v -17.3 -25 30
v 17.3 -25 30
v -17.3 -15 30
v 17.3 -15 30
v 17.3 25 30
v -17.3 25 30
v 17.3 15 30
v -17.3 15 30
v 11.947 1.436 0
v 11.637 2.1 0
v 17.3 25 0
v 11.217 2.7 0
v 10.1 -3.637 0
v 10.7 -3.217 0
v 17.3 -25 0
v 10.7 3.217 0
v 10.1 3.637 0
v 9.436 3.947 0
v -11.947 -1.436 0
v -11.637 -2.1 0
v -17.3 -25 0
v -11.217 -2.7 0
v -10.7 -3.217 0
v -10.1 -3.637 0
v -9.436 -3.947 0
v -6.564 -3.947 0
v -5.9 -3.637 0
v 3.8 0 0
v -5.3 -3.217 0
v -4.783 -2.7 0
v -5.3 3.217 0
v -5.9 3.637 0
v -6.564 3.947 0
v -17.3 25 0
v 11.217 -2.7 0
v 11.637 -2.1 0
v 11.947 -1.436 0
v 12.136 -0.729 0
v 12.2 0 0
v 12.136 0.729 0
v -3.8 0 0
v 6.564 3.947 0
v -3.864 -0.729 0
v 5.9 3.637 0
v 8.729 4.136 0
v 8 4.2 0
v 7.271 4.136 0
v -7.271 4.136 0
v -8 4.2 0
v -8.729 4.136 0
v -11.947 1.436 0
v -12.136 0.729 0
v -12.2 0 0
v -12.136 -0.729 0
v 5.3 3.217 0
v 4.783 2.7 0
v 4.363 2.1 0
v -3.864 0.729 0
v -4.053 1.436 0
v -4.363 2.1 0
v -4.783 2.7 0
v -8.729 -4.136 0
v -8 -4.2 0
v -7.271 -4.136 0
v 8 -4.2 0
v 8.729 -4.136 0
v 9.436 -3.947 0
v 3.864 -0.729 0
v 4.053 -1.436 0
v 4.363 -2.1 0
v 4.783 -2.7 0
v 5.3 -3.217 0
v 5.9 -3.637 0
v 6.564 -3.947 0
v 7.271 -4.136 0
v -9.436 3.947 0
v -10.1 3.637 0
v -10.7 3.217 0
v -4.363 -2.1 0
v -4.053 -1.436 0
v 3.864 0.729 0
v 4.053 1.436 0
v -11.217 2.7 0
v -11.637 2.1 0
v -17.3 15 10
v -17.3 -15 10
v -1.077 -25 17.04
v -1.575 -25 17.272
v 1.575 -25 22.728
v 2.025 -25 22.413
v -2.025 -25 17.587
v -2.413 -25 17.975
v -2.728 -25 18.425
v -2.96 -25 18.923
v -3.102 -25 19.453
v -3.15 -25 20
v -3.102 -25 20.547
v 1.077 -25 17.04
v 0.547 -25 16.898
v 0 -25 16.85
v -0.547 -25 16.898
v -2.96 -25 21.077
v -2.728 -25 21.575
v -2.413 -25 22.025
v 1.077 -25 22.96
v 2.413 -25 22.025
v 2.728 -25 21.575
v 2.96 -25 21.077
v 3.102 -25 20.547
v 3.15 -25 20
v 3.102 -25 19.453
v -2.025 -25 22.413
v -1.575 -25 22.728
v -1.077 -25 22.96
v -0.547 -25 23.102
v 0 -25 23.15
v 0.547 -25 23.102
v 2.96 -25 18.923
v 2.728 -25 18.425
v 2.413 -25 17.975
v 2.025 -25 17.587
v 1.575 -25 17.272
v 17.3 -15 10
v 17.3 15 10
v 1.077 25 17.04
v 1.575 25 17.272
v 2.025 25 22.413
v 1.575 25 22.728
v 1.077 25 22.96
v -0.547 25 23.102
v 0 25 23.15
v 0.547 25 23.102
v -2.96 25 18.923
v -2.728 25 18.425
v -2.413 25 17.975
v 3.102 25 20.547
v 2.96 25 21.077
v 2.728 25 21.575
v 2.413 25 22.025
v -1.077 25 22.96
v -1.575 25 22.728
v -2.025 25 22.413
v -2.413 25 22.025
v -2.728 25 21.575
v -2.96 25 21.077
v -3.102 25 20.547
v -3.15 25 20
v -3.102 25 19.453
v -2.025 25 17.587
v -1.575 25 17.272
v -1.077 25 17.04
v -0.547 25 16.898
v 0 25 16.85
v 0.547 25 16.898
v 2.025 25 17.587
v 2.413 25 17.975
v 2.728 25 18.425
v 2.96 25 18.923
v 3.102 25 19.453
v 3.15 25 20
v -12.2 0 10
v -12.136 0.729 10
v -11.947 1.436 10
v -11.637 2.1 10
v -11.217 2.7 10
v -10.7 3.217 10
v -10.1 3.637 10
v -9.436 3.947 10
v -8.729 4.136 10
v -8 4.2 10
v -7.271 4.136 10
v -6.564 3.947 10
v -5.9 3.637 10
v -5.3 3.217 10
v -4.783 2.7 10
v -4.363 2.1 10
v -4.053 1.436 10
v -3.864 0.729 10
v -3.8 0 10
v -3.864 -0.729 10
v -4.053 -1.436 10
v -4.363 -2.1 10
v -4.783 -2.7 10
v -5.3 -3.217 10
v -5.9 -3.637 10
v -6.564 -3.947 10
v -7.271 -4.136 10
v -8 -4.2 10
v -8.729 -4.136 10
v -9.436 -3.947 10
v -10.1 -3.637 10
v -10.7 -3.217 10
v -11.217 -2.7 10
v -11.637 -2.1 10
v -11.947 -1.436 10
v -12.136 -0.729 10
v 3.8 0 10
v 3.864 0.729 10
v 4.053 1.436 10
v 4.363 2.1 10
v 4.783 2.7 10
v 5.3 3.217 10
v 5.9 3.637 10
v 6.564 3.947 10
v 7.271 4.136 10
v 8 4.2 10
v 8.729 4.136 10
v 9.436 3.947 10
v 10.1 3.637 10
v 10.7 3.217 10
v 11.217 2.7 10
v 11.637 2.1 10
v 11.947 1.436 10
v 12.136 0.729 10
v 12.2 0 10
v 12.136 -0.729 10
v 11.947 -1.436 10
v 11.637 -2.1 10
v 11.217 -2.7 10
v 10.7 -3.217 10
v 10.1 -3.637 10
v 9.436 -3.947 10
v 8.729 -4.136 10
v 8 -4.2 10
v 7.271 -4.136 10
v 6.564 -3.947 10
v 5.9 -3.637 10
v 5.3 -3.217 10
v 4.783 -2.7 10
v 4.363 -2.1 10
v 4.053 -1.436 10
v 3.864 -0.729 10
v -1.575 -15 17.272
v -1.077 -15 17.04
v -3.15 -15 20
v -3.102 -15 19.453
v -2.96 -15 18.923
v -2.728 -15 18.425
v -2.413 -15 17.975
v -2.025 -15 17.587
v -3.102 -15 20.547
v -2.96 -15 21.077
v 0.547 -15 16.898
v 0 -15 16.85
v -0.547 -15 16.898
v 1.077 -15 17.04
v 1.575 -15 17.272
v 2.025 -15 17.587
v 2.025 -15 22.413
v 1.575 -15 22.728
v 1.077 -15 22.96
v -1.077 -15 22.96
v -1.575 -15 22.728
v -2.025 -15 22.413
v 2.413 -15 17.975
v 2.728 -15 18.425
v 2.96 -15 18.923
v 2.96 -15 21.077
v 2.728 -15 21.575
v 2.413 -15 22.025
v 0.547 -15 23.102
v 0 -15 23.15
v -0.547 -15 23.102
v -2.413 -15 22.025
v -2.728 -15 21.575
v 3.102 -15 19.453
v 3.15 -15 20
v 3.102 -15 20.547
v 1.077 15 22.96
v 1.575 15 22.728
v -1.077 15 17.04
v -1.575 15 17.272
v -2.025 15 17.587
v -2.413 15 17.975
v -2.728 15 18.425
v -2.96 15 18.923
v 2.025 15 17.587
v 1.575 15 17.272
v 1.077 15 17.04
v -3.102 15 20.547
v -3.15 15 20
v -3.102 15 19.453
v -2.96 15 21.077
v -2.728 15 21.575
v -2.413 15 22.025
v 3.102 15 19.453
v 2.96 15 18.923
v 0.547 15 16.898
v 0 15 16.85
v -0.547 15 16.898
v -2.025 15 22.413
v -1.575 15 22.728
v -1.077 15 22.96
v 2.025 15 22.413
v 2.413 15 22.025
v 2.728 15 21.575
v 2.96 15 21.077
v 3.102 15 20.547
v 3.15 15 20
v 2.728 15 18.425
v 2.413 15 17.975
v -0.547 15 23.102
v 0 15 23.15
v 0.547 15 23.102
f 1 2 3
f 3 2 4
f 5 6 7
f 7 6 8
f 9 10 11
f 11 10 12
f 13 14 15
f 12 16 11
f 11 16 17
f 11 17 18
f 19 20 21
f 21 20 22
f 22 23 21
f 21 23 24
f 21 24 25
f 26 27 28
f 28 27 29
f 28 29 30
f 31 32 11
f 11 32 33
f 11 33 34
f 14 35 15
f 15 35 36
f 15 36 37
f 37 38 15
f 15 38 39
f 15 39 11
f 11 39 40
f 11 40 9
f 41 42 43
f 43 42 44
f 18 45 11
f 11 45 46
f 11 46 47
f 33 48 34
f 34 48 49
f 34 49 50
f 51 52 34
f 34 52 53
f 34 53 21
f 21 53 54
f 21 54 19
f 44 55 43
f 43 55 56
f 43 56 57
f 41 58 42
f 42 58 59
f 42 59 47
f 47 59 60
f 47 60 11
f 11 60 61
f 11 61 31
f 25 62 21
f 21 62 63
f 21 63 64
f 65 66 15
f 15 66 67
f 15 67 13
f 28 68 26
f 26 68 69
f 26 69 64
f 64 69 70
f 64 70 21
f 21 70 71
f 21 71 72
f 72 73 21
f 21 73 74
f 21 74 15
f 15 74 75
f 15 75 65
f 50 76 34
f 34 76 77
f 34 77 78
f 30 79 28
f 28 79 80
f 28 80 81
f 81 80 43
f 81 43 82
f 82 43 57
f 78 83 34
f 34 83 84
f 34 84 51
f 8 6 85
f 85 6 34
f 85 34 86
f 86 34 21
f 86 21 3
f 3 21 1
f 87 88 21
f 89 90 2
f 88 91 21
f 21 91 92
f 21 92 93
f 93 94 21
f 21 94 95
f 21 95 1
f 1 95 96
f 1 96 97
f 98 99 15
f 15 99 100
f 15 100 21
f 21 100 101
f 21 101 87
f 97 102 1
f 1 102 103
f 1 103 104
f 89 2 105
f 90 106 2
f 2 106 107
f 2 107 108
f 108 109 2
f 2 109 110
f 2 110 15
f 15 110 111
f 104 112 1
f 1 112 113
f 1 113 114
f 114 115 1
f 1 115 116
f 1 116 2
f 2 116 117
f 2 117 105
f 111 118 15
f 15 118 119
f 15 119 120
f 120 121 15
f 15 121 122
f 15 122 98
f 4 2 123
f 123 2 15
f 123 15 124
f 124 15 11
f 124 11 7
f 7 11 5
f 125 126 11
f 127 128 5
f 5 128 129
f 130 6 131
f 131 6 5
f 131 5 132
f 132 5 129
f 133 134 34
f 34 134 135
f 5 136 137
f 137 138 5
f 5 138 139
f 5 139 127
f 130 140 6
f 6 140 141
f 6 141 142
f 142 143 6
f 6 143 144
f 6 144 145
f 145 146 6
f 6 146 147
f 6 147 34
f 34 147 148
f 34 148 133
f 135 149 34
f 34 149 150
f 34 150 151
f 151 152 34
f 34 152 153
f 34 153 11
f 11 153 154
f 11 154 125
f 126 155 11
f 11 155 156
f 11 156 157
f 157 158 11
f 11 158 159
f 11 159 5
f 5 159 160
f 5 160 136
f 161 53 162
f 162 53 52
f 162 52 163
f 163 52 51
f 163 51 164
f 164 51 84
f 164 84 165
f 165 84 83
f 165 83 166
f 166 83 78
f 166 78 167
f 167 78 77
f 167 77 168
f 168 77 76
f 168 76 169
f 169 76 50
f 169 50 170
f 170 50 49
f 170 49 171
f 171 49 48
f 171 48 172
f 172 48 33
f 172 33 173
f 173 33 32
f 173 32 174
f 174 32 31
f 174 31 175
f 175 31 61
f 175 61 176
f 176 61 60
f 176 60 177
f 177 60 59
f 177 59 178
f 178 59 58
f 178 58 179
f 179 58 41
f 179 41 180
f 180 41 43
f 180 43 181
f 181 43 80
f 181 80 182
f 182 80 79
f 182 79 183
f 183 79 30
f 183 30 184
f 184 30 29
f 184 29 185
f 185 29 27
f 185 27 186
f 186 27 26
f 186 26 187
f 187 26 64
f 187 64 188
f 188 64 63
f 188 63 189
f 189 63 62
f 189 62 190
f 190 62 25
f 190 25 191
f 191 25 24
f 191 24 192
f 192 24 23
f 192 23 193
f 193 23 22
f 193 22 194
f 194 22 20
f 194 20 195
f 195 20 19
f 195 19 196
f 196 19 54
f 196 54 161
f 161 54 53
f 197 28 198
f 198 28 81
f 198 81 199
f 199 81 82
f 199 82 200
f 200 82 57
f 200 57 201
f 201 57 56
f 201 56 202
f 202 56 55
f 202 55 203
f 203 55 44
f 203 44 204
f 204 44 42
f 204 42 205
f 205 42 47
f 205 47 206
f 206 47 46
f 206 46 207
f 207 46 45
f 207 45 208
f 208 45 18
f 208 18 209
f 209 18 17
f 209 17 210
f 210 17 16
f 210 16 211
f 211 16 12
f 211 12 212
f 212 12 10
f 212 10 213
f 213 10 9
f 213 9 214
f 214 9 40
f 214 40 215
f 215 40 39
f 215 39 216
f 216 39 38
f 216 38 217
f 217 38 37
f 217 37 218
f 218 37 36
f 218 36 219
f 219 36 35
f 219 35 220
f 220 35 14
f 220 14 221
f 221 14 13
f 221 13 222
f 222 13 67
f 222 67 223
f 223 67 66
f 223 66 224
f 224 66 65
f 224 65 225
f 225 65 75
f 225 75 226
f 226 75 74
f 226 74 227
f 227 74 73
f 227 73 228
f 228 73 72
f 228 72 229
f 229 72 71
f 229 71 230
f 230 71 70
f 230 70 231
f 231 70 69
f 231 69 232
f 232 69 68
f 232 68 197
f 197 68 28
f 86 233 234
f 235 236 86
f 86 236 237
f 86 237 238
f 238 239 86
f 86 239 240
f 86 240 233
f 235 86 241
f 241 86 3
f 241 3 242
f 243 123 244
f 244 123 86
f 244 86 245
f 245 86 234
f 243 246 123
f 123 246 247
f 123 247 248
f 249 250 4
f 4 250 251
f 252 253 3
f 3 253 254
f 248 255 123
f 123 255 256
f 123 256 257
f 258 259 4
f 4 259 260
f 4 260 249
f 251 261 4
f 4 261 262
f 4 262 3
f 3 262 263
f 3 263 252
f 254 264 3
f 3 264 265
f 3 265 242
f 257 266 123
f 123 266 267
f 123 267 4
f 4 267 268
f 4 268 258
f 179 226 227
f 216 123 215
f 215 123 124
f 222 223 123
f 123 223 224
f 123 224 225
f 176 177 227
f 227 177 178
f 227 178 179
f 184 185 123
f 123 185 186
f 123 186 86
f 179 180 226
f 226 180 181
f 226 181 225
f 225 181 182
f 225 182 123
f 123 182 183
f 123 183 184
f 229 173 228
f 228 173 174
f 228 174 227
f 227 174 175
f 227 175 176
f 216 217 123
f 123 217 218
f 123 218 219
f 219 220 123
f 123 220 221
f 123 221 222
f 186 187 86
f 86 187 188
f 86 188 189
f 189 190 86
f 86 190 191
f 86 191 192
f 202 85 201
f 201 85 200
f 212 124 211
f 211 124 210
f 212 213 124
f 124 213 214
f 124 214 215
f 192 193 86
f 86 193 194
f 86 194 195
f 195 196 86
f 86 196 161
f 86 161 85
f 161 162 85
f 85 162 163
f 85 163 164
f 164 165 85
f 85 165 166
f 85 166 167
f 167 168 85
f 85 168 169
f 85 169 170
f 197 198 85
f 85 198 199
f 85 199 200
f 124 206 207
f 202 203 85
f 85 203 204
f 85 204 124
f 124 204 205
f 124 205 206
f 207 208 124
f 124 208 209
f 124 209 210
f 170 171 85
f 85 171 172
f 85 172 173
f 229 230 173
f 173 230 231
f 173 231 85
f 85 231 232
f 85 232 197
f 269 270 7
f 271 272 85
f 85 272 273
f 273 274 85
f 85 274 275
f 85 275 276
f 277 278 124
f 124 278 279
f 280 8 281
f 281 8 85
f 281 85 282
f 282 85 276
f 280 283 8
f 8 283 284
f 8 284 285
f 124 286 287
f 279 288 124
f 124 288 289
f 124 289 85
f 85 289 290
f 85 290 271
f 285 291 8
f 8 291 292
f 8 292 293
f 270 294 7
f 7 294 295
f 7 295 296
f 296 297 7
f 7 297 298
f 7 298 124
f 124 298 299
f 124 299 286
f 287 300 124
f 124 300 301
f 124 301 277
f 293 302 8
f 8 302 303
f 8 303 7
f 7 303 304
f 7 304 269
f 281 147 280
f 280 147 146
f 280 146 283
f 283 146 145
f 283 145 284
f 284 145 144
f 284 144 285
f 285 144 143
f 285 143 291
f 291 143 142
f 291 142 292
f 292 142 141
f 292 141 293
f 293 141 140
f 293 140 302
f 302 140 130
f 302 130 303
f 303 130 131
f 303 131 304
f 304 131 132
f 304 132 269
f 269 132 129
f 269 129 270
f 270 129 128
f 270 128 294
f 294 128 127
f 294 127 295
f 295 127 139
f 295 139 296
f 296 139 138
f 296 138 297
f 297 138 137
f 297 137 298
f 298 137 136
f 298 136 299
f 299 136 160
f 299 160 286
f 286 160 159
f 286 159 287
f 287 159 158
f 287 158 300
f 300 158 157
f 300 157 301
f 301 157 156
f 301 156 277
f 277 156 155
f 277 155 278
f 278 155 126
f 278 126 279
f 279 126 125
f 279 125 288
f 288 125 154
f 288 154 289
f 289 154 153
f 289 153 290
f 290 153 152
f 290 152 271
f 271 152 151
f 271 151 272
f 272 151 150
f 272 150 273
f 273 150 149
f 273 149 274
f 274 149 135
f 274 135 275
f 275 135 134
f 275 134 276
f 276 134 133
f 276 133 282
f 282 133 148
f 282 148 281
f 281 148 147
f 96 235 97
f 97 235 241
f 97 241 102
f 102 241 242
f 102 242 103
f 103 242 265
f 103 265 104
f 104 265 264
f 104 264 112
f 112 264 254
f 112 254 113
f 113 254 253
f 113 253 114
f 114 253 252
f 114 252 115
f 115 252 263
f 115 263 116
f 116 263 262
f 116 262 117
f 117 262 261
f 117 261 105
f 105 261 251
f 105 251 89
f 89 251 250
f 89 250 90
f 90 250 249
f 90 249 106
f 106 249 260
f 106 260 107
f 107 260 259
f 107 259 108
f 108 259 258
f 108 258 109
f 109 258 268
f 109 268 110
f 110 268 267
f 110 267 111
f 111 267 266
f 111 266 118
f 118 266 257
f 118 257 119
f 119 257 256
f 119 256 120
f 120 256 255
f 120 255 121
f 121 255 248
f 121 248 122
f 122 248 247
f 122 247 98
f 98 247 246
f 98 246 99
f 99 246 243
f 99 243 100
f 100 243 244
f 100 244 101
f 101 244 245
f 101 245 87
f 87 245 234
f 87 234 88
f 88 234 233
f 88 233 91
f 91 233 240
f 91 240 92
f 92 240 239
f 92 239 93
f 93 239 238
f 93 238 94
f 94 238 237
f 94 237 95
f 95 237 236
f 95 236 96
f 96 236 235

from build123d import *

# Parameters (mm, degrees)
SKETCH1_W           = 34.6
SKETCH1_H           = 50
SKETCH1_R           = 4.2
BOSS_EXTRUDE1_DEPTH = 30
SKETCH2_W           = 20
SKETCH2_H           = 30
CUT_EXTRUDE1_DEPTH  = 35.6
SKETCH3_R           = 3.15
CUT_EXTRUDE2_DEPTH  = 51


with BuildPart() as part:
    # Sketch1 → Boss-Extrude1 (new body)
    with BuildSketch(Plane.XY):
        Rectangle(SKETCH1_W, SKETCH1_H)
        with Locations((-8, 0)):
            Circle(SKETCH1_R, mode=Mode.SUBTRACT)
        with Locations((8, 0)):
            Circle(SKETCH1_R, mode=Mode.SUBTRACT)
    extrude(amount=BOSS_EXTRUDE1_DEPTH)

    # Sketch2 → Cut-Extrude1 (cut, through all)
    with BuildSketch(Plane.ZY.offset(17.3)):
        with Locations((20, 0)):
            Rectangle(SKETCH2_W, SKETCH2_H)
    extrude(amount=-CUT_EXTRUDE1_DEPTH, mode=Mode.SUBTRACT)

    # Sketch3 → Cut-Extrude2 (cut, through all)
    with BuildSketch(Plane(origin=(0, 25, 0), x_dir=(1, 0, 0), z_dir=(0, 1, 0))):
        with Locations((0, -20)):
            Circle(SKETCH3_R)
    extrude(amount=-CUT_EXTRUDE2_DEPTH, mode=Mode.SUBTRACT)


solid = part.part
